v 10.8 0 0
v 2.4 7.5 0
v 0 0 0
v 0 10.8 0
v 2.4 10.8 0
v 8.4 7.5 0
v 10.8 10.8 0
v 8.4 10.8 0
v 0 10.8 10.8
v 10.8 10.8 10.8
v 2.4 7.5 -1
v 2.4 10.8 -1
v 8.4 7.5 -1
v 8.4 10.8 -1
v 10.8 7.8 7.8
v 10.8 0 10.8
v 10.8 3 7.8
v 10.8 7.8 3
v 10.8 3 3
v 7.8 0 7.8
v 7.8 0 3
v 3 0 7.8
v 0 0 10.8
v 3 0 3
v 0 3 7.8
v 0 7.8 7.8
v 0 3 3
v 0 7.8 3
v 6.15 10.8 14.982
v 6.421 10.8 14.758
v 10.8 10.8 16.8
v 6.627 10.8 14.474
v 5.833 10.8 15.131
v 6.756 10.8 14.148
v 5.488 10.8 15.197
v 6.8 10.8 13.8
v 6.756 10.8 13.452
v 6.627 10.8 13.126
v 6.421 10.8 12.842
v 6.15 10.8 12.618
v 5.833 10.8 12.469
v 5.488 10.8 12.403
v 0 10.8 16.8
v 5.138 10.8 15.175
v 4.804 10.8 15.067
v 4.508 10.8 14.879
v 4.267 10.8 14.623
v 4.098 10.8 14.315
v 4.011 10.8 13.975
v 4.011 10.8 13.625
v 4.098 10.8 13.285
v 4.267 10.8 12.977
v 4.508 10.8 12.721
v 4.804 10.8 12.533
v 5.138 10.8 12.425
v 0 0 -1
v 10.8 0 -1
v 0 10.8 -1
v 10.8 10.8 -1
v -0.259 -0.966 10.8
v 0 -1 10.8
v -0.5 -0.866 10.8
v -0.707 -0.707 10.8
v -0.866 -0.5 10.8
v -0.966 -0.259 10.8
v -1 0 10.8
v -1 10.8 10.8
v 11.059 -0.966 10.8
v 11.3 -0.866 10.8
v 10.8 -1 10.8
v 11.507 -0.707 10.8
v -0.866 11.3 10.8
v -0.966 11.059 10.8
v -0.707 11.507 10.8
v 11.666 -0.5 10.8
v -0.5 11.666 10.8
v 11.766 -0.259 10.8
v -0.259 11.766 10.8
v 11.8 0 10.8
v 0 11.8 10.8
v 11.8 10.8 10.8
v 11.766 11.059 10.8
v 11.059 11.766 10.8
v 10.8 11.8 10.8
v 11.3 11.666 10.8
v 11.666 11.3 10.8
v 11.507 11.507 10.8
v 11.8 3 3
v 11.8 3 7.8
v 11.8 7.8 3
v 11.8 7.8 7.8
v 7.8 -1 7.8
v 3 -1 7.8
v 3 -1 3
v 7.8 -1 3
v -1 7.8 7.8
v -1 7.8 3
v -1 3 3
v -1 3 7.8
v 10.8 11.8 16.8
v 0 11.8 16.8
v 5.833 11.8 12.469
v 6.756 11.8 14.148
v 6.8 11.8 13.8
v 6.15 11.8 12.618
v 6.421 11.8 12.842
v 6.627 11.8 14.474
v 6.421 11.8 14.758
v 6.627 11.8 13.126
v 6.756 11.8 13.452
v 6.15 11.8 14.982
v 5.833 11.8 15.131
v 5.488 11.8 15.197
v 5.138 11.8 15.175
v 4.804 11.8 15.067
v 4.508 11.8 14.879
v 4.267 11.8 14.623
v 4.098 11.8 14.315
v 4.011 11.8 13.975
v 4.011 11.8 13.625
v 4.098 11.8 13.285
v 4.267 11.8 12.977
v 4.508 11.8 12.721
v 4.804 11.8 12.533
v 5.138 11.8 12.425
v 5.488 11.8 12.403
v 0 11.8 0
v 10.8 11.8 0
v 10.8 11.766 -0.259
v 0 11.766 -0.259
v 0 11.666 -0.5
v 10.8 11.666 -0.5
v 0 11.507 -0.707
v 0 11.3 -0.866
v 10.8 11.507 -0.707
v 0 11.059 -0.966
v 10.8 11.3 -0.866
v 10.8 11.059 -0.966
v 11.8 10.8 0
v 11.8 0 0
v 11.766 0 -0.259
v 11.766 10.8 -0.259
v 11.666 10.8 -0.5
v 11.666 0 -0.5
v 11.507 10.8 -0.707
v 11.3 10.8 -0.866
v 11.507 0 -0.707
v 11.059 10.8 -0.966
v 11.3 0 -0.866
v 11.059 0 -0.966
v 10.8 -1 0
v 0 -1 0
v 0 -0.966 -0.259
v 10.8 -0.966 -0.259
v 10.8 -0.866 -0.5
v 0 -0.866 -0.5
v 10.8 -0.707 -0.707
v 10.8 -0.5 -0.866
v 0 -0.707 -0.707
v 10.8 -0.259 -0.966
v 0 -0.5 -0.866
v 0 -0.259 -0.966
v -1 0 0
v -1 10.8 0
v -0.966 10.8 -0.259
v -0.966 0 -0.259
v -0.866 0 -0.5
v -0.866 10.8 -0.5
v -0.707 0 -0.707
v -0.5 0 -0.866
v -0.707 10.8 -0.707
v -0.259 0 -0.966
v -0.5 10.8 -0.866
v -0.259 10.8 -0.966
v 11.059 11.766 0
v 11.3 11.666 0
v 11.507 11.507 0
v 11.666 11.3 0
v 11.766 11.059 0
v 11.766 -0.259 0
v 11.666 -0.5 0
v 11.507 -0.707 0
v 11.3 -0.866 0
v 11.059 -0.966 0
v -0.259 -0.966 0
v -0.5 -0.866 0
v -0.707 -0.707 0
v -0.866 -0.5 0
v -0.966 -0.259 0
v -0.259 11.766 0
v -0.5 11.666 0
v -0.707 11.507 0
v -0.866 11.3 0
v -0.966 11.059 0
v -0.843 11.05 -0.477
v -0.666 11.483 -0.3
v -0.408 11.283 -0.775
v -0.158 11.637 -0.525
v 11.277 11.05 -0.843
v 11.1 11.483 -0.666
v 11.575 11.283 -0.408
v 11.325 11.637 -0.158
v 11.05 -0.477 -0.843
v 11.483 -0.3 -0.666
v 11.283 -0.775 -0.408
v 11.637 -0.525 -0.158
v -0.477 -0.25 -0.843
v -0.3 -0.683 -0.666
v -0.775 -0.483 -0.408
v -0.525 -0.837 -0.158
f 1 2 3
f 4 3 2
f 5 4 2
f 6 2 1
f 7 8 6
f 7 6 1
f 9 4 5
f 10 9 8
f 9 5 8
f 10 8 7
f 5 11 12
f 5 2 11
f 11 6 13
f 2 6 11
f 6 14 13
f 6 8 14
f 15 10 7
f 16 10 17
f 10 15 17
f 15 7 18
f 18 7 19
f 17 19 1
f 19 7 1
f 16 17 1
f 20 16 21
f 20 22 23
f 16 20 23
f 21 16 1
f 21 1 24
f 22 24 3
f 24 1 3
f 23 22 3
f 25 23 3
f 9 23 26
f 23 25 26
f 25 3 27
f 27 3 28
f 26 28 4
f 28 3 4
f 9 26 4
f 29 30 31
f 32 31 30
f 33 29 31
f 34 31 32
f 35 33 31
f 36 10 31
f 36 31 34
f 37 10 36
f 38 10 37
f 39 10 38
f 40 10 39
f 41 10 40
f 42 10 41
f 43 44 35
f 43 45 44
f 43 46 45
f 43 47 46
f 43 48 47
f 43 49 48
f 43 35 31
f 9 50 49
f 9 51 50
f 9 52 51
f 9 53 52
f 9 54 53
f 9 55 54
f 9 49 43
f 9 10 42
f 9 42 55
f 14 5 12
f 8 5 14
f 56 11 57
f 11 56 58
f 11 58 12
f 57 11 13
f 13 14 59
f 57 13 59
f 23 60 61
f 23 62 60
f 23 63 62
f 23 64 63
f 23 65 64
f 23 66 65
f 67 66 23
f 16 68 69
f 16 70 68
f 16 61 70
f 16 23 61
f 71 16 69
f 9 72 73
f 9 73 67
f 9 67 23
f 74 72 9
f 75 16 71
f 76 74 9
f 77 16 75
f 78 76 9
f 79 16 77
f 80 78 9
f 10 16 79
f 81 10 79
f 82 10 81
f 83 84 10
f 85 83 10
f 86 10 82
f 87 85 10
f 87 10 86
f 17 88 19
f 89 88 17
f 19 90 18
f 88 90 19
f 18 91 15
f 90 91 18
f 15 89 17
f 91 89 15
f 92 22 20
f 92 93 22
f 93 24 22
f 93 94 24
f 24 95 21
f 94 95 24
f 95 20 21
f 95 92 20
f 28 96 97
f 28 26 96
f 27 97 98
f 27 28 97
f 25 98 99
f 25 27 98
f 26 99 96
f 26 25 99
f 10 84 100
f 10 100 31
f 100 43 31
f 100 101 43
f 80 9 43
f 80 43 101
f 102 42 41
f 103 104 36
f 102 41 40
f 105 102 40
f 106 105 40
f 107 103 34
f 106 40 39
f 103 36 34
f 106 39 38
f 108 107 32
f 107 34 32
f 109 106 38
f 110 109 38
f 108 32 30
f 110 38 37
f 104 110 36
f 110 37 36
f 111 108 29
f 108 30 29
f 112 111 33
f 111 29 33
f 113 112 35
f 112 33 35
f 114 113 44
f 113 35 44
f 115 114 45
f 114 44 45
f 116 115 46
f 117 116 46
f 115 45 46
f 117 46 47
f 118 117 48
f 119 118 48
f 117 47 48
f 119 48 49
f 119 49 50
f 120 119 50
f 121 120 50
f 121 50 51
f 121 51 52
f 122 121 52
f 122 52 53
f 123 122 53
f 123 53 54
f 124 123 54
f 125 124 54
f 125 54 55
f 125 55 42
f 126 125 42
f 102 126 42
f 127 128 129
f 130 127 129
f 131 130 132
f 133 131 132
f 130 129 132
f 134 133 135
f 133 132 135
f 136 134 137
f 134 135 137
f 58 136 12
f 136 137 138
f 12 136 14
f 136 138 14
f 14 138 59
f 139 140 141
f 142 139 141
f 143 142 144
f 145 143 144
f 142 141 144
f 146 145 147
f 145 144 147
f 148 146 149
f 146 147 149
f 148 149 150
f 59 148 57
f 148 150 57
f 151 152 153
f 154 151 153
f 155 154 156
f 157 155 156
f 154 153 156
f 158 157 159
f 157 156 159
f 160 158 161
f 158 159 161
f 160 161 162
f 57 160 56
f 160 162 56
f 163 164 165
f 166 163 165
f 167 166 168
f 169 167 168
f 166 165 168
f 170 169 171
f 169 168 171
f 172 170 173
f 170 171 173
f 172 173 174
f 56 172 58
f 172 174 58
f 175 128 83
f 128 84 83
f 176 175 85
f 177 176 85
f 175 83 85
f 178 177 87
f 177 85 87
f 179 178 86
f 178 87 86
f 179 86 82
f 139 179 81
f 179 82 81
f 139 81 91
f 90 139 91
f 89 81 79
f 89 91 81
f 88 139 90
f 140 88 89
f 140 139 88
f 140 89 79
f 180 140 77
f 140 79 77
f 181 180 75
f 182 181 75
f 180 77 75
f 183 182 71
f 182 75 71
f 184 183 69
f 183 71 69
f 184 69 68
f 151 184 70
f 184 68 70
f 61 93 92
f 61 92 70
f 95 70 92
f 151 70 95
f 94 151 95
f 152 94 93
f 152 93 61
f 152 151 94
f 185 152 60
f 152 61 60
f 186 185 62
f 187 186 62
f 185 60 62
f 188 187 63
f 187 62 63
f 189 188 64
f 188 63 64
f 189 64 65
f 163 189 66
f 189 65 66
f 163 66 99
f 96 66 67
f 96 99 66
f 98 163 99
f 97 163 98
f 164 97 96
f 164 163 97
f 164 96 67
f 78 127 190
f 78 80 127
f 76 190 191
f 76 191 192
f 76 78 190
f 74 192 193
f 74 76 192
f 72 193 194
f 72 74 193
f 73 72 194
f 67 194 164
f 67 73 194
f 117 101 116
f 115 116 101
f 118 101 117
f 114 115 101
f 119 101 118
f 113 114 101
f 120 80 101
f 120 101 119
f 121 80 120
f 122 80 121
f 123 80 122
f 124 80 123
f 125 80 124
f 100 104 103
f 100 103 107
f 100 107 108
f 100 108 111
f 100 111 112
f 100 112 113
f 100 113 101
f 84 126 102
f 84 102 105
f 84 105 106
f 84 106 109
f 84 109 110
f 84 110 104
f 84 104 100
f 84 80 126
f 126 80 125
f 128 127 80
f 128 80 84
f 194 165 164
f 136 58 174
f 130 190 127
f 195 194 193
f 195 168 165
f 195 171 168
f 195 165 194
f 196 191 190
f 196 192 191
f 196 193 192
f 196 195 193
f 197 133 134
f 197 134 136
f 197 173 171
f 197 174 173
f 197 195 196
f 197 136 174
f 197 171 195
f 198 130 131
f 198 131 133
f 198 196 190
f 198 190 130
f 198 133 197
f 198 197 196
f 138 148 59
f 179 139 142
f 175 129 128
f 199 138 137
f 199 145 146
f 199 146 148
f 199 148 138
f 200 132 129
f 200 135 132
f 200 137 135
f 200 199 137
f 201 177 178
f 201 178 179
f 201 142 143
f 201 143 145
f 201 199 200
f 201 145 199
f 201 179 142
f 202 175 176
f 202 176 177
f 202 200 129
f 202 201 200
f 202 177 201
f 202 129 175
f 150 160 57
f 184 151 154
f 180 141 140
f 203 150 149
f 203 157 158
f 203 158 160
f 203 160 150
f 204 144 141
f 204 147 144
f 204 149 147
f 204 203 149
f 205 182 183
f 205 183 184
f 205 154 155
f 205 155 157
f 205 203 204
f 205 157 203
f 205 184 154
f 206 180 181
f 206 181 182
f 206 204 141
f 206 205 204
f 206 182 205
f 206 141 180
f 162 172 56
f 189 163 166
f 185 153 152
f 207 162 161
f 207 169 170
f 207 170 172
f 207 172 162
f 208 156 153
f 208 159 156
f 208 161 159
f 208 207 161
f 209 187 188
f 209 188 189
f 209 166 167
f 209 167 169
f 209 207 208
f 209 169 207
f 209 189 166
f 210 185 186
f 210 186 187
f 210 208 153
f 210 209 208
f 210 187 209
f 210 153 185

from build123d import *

# Parameters (mm, degrees)
SKETCH_W        = 10.8
SKETCH_H        = 10.8
PAD_DEPTH       = 10.8
THICKNESS_T     = 1
SKETCH001_W     = 10.8
SKETCH001_H     = 1
PAD001_DEPTH    = 6
SKETCH002_R     = 1.4
POCKET_DEPTH    = 1.001
SKETCH003_W     = 6
SKETCH003_H     = 3.3
POCKET001_DEPTH = 5
SKETCH004_W     = 4.8
SKETCH004_H     = 4.8
POCKET002_DEPTH = 1
SKETCH005_W     = 4.8
SKETCH005_H     = 4.8
POCKET003_DEPTH = 12.801


with BuildPart() as part:
    # Sketch → Pad (new body)
    with BuildSketch(Plane.XY):
        with Locations((5.4, 5.4)):
            Rectangle(SKETCH_W, SKETCH_H)
    extrude(amount=PAD_DEPTH)

    # Thickness
    thickness_openings = [part.faces().sort_by_distance(p)[0] for p in [
        (5.4, 5.4, 10.8),
    ]]
    offset(amount=THICKNESS_T, openings=thickness_openings)

    # Sketch001 → Pad001 (new body)
    with BuildSketch(Plane.XY.offset(10.8)):
        with Locations((5.4, 11.3)):
            Rectangle(SKETCH001_W, SKETCH001_H)
    extrude(amount=PAD001_DEPTH)

    # Sketch002 → Pocket (cut, through all)
    with BuildSketch(Plane.XZ.offset(-10.8)):
        with Locations((5.4, 13.8)):
            Circle(SKETCH002_R)
    extrude(amount=-POCKET_DEPTH, mode=Mode.SUBTRACT)

    # Sketch003 → Pocket001 (cut)
    with BuildSketch(Plane.XY):
        with Locations((5.4, 9.15)):
            Rectangle(SKETCH003_W, SKETCH003_H)
    extrude(amount=-POCKET001_DEPTH, mode=Mode.SUBTRACT)

    # Sketch004 → Pocket002 (cut)
    with BuildSketch(Plane.XZ.offset(1)):
        with Locations((5.4, 5.4)):
            Rectangle(SKETCH004_W, SKETCH004_H)
    extrude(amount=-POCKET002_DEPTH, mode=Mode.SUBTRACT)

    # Sketch005 → Pocket003 (cut, through all)
    with BuildSketch(Plane.YZ.offset(11.8)):
        with Locations((5.4, 5.4)):
            Rectangle(SKETCH005_W, SKETCH005_H)
    extrude(amount=-POCKET003_DEPTH, mode=Mode.SUBTRACT)


solid = part.part
